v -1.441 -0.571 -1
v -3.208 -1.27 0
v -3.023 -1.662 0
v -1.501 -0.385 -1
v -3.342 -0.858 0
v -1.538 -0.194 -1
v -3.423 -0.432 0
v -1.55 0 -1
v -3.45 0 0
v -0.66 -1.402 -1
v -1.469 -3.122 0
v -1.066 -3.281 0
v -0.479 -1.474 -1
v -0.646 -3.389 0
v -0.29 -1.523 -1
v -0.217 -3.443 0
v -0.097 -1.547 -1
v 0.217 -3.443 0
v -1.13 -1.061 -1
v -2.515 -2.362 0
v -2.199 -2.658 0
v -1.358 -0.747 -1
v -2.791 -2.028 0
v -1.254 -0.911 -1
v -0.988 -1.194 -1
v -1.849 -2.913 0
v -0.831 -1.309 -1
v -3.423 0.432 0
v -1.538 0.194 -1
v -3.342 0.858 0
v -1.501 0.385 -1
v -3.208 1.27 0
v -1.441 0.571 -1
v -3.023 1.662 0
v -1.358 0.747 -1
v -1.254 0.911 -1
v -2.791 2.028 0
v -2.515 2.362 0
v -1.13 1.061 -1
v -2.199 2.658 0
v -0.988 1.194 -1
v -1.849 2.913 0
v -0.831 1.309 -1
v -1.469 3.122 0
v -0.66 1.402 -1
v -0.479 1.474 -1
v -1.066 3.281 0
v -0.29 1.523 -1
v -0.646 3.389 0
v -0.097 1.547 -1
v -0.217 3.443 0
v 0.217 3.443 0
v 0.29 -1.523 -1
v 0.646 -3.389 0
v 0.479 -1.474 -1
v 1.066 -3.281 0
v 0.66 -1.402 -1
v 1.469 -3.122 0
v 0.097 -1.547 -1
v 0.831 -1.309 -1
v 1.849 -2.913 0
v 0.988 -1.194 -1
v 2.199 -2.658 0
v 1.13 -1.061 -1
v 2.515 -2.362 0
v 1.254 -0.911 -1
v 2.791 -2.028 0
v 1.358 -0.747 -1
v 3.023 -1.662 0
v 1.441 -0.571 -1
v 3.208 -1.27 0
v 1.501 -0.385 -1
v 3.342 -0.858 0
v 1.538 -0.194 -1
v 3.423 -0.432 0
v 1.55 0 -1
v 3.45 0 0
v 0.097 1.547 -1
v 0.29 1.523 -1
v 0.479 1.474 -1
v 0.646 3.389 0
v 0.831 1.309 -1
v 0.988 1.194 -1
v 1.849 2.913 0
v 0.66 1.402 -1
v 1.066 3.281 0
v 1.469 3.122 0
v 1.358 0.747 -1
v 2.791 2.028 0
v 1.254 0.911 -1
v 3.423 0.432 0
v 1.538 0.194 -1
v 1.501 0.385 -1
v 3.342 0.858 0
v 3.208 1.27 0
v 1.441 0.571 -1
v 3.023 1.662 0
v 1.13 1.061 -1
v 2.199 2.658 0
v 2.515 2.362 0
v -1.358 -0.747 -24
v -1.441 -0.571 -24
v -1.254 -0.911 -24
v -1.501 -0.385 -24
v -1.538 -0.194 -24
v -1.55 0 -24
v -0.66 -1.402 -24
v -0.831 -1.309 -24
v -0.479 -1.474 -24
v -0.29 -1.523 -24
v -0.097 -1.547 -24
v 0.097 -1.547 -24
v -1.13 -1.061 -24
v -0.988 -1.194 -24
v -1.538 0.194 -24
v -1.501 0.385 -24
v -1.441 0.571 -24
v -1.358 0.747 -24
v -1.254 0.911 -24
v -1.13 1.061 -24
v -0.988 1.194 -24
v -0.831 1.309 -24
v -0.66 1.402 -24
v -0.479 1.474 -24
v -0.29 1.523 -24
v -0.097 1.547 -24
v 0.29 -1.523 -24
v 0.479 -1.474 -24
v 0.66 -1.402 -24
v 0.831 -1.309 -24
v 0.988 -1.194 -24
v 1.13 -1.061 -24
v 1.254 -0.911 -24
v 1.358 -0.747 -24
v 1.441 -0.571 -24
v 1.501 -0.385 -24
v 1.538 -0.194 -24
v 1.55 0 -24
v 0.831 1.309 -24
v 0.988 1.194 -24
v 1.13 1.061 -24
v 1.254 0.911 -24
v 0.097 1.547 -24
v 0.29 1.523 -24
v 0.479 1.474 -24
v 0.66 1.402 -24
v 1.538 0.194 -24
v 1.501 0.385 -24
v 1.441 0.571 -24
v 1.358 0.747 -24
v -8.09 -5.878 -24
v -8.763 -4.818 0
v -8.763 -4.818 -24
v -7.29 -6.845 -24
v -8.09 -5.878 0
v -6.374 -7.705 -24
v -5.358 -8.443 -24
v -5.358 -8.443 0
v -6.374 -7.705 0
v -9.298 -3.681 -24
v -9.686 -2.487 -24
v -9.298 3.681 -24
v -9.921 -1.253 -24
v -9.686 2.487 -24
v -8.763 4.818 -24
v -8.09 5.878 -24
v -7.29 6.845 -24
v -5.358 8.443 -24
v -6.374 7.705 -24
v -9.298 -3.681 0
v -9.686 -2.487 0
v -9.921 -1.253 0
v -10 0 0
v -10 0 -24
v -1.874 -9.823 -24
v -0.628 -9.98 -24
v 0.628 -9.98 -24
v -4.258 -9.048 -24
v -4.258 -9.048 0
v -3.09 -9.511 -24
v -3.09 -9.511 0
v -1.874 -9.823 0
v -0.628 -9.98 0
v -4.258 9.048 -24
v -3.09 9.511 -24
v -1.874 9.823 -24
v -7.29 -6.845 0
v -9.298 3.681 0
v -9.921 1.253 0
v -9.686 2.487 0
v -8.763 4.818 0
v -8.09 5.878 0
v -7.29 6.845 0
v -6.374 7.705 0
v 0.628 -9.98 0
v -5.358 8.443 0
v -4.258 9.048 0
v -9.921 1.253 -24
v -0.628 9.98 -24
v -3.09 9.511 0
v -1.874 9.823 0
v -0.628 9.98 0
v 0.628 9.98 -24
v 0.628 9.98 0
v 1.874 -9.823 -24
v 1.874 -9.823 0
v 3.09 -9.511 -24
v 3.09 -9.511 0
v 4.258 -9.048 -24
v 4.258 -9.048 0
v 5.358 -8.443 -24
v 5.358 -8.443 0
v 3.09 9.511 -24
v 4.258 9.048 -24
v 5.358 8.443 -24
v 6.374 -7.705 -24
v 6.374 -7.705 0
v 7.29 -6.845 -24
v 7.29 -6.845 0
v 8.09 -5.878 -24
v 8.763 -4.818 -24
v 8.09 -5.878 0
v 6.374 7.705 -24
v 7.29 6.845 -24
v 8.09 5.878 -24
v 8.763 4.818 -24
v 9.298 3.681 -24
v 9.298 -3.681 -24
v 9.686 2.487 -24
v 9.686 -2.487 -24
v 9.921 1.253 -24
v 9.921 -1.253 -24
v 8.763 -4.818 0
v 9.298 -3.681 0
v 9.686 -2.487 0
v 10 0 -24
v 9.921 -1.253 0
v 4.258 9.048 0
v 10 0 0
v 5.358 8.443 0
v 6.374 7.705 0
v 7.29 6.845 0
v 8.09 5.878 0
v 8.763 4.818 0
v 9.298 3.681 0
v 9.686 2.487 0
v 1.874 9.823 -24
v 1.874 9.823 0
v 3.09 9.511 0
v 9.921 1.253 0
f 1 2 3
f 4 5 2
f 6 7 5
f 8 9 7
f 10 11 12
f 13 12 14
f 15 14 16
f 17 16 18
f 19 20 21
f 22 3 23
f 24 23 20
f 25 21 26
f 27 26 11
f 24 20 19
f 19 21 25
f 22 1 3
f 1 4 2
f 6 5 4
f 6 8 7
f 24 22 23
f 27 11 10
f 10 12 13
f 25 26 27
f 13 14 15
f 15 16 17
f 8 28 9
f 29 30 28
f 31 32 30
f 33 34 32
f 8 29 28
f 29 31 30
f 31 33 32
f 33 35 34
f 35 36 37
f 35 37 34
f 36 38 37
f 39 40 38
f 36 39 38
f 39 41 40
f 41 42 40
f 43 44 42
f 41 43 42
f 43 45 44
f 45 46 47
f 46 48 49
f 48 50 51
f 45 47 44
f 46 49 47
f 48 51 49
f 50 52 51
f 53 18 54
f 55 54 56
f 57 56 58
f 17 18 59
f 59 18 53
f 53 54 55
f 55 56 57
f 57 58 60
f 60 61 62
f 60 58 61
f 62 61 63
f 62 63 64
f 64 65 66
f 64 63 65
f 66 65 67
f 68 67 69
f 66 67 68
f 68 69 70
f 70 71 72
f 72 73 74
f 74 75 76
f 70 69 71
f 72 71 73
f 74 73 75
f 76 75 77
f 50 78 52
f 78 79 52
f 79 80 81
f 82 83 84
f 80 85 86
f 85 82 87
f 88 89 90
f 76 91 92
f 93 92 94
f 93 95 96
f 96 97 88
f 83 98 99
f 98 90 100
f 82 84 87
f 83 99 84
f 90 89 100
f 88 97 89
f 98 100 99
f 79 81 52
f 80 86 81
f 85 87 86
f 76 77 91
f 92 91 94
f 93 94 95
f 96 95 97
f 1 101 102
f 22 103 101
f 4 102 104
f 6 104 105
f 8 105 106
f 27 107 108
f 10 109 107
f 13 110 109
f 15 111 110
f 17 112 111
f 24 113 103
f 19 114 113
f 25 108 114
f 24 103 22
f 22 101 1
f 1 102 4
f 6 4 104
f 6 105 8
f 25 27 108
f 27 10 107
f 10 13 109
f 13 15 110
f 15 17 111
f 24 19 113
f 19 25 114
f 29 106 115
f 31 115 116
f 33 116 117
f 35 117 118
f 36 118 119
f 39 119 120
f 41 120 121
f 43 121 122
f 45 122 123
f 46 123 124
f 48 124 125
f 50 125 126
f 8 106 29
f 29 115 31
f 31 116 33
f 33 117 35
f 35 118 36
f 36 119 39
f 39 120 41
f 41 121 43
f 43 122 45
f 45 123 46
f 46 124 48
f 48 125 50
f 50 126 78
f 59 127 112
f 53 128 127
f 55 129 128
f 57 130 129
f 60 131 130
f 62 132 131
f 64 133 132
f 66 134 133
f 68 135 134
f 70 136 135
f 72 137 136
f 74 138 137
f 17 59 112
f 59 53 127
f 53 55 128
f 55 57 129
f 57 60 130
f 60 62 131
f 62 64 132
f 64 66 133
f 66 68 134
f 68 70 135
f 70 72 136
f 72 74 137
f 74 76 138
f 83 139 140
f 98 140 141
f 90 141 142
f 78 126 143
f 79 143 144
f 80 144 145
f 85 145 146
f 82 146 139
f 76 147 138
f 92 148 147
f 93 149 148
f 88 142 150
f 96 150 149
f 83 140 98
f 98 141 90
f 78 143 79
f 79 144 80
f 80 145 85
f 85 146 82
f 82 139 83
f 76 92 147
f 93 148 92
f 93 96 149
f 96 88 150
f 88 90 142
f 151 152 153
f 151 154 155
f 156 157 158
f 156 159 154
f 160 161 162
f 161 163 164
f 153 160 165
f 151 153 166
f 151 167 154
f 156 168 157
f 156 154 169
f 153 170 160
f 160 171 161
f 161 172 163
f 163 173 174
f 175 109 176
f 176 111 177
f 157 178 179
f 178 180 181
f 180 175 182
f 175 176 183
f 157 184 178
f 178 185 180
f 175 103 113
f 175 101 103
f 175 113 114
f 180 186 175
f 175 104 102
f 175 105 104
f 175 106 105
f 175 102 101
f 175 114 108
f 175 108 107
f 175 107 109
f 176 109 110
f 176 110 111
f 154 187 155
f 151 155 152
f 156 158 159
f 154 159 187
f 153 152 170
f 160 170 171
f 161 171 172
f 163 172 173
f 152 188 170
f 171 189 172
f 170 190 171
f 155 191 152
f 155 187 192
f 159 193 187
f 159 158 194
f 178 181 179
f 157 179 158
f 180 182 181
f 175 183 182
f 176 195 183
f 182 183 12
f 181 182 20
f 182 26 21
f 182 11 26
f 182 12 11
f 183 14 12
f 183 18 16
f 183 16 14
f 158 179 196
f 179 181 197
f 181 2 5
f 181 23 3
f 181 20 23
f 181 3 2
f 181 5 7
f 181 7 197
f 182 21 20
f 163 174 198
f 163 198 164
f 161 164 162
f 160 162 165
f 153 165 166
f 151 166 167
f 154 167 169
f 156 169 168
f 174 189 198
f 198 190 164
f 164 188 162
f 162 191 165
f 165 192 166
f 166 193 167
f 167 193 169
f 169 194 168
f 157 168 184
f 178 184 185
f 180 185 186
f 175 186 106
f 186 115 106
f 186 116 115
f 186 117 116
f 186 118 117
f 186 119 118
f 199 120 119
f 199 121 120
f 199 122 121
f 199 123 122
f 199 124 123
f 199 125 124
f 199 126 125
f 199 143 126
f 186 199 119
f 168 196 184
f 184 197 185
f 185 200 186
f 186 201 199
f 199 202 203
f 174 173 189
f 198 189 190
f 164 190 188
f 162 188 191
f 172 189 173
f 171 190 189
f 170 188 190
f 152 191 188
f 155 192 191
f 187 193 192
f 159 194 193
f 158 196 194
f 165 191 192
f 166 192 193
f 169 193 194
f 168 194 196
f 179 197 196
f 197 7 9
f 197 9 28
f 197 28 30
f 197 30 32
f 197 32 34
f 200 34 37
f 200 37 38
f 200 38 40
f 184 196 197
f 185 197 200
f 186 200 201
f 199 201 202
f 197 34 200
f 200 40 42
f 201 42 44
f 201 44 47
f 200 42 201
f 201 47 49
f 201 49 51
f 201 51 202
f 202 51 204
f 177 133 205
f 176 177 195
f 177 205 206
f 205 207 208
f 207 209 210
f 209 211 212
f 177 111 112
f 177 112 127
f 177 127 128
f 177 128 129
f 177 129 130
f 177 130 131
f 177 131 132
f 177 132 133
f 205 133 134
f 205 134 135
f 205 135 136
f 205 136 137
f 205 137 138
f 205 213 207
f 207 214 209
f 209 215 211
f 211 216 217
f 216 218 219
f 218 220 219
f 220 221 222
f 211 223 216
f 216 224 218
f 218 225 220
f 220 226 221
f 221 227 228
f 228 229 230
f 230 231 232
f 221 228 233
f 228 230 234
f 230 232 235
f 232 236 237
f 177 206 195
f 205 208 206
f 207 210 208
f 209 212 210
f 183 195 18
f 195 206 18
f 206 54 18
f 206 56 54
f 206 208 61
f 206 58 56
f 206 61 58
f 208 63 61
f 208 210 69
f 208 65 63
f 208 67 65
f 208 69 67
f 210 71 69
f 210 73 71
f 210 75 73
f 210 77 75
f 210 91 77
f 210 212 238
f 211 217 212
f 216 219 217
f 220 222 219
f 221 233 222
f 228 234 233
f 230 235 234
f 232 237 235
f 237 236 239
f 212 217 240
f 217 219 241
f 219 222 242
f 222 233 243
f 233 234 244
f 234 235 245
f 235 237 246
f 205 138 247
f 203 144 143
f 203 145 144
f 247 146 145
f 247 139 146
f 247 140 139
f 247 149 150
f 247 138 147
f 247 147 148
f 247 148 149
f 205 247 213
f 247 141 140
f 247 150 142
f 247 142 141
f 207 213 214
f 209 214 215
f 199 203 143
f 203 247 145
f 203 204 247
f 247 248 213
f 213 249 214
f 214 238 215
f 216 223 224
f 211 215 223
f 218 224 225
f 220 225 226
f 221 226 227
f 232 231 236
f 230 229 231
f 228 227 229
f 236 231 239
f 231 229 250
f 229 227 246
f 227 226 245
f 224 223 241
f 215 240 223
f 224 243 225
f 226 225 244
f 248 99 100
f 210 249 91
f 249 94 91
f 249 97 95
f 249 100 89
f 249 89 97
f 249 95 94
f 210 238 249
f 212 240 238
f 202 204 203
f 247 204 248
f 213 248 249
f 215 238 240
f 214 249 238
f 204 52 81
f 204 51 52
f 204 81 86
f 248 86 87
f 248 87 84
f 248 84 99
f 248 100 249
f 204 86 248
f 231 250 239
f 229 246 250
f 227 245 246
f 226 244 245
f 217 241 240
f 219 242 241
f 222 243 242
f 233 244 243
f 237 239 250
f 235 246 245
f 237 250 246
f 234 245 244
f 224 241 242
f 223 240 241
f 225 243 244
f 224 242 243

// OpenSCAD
$fn = 50;

difference() {
	union() {
		translate(v = [0, 0, -24.0]) {
			cylinder(h = 24, r = 10.0);
		}
	}
	union() {
		translate(v = [0, 0, 0]) {
			rotate(a = [0, 0, 0]) {
				difference() {
					union() {
						translate(v = [0, 0, -27.0]) {
							cylinder(h = 27, r = 1.25);
						}
						translate(v = [0, 0, -1.0]) {
							cylinder(h = 1.0, r1 = 1.55, r2 = 3.45);
						}
						translate(v = [0, 0, -27.0]) {
							cylinder(h = 27, r = 1.55);
						}
						translate(v = [0, 0, -27.0]) {
							cylinder(h = 27, r = 1.25);
						}
					}
					union();
				}
			}
		}
	}
}
